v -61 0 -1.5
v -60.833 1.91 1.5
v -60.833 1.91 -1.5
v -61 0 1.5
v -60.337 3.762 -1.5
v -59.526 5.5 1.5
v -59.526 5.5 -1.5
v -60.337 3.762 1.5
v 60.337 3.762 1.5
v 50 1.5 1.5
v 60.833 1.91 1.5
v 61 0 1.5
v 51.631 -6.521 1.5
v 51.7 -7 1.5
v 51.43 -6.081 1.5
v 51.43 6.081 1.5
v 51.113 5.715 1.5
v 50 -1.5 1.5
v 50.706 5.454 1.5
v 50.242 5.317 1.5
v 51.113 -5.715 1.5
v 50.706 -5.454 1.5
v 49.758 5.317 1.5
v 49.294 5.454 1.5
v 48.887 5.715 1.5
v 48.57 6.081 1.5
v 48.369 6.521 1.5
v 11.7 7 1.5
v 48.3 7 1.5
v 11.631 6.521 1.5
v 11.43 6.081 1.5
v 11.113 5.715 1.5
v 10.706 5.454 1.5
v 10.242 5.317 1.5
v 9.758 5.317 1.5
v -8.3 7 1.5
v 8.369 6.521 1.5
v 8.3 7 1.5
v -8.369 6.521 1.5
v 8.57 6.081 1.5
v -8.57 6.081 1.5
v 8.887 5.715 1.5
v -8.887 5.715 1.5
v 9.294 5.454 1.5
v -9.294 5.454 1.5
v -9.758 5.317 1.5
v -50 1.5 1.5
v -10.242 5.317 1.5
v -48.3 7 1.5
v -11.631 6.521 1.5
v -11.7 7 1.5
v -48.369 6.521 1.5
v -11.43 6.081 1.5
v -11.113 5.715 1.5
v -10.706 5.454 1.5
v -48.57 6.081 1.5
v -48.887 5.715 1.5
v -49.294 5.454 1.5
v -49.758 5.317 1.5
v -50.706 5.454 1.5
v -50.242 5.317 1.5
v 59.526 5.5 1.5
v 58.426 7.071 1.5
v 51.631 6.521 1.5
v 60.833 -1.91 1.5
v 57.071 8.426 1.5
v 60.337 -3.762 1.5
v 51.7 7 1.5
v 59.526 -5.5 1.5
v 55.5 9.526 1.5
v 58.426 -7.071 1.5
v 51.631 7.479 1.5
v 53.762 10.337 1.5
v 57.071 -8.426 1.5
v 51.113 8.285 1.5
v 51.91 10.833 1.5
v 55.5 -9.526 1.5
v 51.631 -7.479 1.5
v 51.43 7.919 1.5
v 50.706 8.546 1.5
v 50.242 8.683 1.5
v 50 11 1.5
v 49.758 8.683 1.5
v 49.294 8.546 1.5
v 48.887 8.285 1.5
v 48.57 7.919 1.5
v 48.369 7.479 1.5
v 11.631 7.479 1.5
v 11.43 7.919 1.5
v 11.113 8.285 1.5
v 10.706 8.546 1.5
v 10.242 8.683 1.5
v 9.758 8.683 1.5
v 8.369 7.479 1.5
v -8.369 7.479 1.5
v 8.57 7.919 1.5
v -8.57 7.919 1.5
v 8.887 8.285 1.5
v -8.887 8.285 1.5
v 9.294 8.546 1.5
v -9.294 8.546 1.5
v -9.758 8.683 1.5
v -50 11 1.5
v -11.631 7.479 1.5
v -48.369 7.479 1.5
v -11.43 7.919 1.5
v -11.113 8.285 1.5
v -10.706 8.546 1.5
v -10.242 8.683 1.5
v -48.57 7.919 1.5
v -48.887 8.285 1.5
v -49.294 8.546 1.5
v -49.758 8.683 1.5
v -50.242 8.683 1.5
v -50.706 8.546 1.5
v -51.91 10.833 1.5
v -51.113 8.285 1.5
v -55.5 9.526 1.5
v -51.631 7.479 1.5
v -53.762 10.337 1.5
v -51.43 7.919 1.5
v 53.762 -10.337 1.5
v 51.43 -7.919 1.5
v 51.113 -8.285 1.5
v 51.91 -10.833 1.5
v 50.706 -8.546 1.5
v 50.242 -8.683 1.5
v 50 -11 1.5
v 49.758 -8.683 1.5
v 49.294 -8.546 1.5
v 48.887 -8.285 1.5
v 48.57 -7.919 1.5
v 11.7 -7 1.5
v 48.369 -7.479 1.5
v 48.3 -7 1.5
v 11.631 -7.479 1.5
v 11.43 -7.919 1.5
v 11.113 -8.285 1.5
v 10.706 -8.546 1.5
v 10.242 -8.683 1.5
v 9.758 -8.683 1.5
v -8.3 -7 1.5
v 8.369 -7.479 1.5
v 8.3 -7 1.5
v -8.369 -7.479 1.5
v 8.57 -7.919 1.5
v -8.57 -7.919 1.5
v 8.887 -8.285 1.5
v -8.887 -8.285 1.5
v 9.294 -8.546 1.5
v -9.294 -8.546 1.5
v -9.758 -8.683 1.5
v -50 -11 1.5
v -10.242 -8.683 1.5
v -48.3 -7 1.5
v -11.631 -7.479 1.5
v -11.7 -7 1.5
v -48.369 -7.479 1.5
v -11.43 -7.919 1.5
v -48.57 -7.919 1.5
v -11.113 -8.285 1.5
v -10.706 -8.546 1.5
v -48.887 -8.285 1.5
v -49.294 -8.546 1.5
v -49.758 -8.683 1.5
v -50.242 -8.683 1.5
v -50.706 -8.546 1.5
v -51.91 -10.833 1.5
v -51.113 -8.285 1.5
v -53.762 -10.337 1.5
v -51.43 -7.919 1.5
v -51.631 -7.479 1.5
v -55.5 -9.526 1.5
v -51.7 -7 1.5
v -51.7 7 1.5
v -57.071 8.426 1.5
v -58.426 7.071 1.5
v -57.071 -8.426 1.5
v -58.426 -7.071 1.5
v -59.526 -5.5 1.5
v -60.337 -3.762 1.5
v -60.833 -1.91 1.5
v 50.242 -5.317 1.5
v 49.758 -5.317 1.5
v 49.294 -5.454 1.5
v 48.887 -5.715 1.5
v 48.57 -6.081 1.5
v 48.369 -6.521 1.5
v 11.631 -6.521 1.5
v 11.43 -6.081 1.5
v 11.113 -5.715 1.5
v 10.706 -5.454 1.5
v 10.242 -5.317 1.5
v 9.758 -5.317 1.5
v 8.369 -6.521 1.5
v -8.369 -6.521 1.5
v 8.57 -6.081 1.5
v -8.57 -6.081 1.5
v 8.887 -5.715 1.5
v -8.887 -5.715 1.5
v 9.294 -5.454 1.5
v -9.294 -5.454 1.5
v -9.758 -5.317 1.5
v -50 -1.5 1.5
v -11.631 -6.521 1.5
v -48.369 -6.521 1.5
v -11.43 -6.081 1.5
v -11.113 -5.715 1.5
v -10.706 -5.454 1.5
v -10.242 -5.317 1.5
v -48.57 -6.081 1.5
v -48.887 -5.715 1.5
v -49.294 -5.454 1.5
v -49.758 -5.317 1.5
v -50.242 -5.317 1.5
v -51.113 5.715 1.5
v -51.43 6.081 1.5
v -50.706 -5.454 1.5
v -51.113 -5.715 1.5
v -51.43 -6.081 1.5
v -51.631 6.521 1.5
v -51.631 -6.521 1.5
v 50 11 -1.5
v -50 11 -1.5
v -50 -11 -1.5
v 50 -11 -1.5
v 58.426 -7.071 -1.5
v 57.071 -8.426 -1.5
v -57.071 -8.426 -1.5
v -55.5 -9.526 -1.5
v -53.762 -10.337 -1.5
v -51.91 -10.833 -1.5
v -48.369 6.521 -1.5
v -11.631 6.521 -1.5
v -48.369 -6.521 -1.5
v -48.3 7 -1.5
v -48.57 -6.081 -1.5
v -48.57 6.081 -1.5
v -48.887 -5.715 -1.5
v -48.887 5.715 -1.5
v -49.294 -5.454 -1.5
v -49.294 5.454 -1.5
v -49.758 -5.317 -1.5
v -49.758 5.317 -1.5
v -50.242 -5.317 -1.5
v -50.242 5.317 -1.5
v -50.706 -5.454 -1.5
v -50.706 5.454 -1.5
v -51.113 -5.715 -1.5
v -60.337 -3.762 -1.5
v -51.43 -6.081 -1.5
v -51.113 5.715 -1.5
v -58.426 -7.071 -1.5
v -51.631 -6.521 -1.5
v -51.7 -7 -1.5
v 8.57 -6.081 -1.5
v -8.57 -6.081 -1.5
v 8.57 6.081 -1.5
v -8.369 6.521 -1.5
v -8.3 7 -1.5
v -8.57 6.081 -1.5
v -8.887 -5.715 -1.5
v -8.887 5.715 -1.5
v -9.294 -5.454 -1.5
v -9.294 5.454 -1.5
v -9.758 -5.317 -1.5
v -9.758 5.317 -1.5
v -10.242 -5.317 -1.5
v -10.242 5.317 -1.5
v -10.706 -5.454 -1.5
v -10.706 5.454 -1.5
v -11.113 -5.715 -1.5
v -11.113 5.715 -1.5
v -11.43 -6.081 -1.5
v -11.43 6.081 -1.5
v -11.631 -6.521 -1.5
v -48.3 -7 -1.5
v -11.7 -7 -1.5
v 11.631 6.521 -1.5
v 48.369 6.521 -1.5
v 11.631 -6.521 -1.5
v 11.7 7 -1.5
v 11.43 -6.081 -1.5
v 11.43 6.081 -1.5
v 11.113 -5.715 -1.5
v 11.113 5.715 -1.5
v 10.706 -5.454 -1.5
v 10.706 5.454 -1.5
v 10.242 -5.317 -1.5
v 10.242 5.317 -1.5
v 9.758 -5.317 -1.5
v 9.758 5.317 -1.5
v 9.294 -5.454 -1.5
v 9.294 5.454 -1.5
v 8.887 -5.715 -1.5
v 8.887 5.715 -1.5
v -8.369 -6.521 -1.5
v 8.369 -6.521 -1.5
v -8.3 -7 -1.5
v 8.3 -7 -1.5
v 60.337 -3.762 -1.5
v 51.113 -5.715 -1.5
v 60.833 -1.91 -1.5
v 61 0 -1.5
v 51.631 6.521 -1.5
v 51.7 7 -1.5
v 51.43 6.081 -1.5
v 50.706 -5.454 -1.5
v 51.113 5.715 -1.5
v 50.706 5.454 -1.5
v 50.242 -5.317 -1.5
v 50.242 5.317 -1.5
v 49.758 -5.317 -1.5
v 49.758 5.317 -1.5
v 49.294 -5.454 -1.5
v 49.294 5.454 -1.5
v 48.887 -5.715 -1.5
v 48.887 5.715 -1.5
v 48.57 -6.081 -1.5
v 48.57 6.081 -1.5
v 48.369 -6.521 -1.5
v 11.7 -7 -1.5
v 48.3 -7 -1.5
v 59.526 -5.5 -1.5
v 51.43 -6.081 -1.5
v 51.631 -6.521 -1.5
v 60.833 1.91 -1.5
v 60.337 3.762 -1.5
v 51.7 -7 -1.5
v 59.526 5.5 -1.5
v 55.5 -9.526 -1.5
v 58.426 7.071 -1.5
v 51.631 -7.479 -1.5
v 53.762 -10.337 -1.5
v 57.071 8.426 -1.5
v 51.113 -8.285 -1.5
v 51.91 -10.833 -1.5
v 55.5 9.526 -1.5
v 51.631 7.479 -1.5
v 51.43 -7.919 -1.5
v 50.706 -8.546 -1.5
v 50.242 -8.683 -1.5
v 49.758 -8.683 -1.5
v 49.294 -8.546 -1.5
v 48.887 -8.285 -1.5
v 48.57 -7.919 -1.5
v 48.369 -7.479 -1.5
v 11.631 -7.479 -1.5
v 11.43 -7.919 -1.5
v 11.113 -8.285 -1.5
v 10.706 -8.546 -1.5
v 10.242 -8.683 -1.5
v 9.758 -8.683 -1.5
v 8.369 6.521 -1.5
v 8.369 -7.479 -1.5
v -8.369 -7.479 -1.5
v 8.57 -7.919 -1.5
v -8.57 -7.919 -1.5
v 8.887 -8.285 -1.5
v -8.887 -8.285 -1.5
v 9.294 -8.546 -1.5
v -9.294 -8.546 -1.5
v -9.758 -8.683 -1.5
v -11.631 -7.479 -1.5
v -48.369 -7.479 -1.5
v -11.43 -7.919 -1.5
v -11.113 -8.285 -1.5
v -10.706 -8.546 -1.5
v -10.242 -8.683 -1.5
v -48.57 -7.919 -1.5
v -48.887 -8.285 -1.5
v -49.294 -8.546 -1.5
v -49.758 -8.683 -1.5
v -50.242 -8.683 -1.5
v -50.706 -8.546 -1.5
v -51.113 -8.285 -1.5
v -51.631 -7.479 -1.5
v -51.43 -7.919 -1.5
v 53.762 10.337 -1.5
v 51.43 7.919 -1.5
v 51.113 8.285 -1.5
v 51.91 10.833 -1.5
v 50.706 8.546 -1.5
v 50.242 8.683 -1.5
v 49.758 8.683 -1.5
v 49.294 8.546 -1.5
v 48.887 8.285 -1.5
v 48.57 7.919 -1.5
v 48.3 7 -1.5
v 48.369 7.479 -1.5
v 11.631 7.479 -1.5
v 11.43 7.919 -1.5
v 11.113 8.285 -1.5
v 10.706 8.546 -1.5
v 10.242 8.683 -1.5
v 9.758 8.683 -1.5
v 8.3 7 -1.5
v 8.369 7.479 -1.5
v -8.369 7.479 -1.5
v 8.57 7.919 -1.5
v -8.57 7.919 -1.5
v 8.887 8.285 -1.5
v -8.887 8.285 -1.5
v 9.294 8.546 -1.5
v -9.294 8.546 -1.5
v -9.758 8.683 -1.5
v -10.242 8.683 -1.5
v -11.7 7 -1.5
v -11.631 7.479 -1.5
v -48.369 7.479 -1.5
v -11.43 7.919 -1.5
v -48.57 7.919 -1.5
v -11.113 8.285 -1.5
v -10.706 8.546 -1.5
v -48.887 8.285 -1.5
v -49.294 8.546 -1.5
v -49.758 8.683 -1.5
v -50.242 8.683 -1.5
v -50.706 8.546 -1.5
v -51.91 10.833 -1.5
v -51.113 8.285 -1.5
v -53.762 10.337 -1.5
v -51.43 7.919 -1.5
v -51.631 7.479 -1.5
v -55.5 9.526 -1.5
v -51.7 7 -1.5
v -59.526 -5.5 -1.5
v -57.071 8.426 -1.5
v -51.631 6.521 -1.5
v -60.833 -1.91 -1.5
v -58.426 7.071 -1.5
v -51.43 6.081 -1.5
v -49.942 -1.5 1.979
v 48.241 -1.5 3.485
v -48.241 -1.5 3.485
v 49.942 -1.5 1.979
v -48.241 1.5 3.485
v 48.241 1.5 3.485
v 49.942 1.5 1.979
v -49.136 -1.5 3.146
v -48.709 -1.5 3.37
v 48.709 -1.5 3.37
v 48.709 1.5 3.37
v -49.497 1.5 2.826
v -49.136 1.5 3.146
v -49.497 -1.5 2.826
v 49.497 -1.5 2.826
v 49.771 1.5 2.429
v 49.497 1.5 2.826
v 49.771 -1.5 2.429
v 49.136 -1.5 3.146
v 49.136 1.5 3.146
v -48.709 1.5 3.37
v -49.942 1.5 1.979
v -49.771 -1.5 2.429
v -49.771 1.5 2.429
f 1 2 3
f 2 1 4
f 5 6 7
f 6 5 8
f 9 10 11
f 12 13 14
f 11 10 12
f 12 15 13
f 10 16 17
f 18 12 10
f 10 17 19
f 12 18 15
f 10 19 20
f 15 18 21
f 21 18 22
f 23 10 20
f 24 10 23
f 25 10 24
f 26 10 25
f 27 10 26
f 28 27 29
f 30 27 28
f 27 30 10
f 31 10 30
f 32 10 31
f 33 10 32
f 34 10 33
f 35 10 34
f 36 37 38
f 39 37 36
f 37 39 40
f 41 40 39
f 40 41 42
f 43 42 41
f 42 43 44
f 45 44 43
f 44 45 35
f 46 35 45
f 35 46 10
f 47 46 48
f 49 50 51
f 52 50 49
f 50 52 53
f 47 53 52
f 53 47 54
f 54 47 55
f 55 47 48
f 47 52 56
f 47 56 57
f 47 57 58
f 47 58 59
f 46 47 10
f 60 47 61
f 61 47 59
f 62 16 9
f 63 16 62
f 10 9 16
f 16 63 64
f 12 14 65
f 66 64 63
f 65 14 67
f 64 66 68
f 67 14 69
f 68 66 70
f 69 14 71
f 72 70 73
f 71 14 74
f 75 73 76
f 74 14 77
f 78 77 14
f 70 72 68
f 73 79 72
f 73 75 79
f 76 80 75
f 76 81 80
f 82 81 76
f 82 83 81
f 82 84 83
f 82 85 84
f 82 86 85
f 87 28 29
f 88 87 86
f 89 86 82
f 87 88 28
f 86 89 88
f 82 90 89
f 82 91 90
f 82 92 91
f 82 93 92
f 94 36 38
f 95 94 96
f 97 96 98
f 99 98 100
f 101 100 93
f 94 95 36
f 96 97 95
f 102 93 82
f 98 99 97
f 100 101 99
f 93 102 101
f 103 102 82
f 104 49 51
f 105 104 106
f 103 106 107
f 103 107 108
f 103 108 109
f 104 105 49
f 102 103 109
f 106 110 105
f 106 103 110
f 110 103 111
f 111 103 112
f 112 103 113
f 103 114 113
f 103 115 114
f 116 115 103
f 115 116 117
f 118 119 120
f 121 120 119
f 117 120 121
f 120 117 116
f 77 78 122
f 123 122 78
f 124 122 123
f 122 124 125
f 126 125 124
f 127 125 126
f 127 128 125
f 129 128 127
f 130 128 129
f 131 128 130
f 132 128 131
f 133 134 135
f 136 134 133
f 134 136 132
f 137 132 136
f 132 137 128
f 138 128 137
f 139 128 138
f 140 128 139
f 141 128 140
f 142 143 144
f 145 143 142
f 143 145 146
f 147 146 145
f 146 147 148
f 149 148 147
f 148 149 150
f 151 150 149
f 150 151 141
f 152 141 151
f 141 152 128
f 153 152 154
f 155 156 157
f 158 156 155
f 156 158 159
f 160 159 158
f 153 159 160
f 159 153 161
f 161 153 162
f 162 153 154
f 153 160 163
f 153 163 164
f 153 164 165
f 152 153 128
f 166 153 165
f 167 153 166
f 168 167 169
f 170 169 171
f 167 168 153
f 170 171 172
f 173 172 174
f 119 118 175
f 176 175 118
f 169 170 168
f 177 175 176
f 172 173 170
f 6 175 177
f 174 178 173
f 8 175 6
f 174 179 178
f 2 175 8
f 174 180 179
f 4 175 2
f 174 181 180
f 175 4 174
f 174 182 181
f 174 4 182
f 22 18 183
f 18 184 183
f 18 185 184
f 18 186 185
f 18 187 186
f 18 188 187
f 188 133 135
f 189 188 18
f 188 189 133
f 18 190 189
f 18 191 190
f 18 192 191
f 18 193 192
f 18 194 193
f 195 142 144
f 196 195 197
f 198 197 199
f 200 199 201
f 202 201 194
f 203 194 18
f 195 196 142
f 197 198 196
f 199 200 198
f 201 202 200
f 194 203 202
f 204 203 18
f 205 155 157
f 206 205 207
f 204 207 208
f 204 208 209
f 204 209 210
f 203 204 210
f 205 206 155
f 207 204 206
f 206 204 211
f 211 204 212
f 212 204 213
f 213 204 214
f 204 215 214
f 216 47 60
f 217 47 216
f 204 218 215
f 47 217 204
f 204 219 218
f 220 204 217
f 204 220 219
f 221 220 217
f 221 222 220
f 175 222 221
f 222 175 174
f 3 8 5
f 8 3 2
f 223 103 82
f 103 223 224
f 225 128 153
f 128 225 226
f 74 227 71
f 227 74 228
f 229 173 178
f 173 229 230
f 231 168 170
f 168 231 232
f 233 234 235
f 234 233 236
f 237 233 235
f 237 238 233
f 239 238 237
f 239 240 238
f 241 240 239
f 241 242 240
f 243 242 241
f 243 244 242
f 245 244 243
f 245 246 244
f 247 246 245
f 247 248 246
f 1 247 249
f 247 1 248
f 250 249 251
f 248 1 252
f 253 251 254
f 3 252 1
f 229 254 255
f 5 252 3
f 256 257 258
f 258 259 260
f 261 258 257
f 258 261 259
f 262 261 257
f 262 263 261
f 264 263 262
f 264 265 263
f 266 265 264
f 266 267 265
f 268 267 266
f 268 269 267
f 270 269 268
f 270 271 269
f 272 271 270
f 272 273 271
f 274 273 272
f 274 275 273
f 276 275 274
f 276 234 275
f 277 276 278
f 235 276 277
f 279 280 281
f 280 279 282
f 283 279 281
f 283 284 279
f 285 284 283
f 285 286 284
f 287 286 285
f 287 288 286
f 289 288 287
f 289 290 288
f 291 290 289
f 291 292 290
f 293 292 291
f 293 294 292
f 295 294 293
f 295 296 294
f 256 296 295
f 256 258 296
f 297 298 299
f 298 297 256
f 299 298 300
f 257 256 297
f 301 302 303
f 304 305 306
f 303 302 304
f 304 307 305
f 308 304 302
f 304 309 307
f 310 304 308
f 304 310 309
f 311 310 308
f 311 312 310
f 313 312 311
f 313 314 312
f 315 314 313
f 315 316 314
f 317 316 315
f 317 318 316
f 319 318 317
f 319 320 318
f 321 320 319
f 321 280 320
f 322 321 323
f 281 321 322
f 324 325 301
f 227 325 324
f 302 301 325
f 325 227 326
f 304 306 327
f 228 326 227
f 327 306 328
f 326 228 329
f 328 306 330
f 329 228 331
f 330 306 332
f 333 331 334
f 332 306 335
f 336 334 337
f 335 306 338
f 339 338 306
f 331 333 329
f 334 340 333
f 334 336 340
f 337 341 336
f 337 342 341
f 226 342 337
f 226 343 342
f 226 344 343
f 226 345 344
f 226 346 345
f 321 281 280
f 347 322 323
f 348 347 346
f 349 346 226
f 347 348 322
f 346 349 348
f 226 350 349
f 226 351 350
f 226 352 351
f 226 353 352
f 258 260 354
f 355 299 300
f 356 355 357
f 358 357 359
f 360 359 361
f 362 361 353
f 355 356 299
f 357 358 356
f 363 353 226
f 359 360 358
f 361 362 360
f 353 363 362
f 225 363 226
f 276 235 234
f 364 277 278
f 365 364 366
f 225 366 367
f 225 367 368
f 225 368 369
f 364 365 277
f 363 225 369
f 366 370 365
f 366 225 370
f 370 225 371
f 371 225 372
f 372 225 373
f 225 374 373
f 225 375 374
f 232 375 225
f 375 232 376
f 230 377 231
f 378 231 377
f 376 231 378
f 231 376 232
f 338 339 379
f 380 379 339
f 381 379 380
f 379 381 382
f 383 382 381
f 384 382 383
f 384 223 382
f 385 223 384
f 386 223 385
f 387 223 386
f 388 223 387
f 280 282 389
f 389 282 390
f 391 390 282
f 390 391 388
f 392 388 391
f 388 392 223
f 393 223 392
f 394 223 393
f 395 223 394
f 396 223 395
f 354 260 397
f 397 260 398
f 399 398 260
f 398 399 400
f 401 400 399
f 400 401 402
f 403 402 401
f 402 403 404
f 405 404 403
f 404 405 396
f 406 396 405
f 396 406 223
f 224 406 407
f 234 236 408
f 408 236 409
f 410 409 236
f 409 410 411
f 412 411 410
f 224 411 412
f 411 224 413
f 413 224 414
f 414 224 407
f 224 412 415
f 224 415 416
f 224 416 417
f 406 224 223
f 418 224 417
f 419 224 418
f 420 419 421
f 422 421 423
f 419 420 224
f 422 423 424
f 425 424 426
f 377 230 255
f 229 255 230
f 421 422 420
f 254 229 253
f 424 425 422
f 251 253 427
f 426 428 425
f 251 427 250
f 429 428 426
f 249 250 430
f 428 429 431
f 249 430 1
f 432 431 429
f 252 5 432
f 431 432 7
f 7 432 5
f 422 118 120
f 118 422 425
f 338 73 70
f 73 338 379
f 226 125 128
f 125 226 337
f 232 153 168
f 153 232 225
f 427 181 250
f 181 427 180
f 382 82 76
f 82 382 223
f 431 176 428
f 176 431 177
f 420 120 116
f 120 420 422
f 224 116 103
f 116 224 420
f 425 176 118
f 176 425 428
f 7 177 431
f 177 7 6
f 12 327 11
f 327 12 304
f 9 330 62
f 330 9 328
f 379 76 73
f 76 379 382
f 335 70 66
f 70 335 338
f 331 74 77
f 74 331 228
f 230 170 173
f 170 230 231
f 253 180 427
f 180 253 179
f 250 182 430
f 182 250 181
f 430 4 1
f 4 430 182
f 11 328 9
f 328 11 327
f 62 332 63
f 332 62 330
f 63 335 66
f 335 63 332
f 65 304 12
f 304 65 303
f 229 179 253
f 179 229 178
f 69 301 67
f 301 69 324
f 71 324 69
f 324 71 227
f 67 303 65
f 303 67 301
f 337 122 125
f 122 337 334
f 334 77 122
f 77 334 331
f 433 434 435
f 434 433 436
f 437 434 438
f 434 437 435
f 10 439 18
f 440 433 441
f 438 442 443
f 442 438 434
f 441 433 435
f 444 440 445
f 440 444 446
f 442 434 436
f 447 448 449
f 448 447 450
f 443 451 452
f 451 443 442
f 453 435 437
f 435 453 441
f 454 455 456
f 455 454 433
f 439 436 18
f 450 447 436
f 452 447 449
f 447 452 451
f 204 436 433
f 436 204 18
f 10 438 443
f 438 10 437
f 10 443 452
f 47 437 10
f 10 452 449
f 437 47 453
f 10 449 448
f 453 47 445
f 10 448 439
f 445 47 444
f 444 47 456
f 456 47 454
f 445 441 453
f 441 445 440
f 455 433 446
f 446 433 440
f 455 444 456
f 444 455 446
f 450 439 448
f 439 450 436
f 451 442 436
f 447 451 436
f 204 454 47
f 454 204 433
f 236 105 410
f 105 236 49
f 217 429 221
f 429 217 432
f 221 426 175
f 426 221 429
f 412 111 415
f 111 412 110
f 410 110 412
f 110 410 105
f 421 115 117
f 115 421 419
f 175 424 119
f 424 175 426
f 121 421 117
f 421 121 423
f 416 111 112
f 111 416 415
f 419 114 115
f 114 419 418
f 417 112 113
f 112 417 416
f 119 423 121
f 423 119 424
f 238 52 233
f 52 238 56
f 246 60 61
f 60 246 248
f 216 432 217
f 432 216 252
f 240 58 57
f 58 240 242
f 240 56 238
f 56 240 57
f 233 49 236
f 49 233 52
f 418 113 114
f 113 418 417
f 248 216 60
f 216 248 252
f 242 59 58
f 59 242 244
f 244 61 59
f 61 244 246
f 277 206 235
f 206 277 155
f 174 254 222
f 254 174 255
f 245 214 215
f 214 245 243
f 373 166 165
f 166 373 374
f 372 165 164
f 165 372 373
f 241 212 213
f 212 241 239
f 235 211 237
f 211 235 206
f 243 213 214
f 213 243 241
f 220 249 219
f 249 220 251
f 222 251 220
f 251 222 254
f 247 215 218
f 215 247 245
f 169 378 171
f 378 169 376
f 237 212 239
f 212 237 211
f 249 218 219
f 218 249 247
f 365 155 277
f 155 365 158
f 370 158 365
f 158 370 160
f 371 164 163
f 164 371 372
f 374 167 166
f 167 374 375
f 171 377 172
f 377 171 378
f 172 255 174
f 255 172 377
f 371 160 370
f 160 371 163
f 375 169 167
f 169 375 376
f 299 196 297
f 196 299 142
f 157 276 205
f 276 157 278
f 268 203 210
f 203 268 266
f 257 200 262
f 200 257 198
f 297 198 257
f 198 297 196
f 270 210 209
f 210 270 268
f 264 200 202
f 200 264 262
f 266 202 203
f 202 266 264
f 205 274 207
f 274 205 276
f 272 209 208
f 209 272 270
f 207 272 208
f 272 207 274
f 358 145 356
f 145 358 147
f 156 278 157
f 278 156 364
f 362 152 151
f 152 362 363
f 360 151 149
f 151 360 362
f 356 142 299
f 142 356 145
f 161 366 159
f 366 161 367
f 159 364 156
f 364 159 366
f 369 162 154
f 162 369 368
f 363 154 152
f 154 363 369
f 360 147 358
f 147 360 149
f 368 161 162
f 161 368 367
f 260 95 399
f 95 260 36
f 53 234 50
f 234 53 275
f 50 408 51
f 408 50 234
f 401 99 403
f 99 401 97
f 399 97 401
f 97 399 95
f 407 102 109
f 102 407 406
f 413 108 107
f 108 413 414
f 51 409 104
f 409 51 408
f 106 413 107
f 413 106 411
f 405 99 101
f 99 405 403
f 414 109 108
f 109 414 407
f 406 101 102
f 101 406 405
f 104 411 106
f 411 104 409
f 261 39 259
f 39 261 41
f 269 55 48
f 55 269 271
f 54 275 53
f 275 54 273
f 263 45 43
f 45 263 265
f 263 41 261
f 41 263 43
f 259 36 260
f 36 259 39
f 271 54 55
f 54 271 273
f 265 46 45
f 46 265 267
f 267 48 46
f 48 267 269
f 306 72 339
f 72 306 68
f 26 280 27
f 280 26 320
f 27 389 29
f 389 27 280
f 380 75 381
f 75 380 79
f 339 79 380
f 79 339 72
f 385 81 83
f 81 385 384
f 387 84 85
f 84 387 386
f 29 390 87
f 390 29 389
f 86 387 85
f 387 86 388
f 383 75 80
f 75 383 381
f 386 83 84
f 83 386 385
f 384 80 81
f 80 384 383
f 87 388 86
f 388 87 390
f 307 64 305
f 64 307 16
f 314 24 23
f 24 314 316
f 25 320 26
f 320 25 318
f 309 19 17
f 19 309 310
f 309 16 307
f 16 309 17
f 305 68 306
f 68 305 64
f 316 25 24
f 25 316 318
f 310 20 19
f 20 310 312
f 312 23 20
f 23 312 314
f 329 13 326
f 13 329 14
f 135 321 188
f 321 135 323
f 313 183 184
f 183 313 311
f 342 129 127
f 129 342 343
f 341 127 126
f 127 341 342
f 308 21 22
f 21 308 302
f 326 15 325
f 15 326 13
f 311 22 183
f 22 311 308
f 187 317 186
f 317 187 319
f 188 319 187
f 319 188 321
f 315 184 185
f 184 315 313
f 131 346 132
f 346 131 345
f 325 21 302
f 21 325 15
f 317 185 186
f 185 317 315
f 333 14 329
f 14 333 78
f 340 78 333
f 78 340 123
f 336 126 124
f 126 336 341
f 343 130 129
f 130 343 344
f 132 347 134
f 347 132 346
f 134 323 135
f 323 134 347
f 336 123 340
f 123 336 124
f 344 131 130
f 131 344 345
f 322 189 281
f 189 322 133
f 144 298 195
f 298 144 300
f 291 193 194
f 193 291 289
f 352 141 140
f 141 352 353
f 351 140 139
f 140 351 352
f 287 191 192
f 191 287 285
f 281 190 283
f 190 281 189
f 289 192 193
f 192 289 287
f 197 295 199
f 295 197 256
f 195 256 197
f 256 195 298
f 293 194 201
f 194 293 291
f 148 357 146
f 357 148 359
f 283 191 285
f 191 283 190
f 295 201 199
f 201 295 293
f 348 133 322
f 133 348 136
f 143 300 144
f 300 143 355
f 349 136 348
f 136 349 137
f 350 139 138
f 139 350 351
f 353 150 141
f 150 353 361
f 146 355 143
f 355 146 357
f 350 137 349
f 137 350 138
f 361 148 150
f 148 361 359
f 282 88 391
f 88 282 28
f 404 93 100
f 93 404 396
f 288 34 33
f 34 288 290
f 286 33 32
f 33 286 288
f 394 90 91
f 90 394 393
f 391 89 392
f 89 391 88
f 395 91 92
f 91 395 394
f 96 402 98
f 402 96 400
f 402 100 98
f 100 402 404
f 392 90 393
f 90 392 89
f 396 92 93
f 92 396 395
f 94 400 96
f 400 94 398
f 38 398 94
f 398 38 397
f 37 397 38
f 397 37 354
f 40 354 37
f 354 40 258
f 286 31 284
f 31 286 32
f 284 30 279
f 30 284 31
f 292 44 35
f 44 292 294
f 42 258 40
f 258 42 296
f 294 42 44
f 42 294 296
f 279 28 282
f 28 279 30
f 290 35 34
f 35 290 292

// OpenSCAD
$fa=10; $fs=0.5;

difference(){
    
    union(){
        hull(){
            translate([-50, 0, 0]) cylinder(h=3, r=11, center=true); //планка
            translate([50, 0, 0]) cylinder(h=3, r=11, center=true);
        }
        
        hull(){
            translate([-48,0,1.5]) rotate([90,0,0]) cylinder(h=3, r=2, center=true); //ребро   
            translate([48,0,1.5]) rotate([90,0,0]) cylinder(h=3, r=2, center=true);
        }
    }
    
    union(){
        translate([-50,7,0]) cylinder(h=3.01, r=1.7, center=true); 
        translate([-50,-7,0]) cylinder(h=3.01, r=1.7, center=true);
        translate([-10,-7,0]) cylinder(h=3.01, r=1.7, center=true);
        translate([-10,7,0]) cylinder(h=3.01, r=1.7, center=true);
        
        translate([50,7,0]) cylinder(h=3.01, r=1.7, center=true); 
        translate([50,-7,0]) cylinder(h=3.01, r=1.7, center=true);
        translate([10,-7,0]) cylinder(h=3.01, r=1.7, center=true);
        translate([10,7,0]) cylinder(h=3.01, r=1.7, center=true);
    }
}
